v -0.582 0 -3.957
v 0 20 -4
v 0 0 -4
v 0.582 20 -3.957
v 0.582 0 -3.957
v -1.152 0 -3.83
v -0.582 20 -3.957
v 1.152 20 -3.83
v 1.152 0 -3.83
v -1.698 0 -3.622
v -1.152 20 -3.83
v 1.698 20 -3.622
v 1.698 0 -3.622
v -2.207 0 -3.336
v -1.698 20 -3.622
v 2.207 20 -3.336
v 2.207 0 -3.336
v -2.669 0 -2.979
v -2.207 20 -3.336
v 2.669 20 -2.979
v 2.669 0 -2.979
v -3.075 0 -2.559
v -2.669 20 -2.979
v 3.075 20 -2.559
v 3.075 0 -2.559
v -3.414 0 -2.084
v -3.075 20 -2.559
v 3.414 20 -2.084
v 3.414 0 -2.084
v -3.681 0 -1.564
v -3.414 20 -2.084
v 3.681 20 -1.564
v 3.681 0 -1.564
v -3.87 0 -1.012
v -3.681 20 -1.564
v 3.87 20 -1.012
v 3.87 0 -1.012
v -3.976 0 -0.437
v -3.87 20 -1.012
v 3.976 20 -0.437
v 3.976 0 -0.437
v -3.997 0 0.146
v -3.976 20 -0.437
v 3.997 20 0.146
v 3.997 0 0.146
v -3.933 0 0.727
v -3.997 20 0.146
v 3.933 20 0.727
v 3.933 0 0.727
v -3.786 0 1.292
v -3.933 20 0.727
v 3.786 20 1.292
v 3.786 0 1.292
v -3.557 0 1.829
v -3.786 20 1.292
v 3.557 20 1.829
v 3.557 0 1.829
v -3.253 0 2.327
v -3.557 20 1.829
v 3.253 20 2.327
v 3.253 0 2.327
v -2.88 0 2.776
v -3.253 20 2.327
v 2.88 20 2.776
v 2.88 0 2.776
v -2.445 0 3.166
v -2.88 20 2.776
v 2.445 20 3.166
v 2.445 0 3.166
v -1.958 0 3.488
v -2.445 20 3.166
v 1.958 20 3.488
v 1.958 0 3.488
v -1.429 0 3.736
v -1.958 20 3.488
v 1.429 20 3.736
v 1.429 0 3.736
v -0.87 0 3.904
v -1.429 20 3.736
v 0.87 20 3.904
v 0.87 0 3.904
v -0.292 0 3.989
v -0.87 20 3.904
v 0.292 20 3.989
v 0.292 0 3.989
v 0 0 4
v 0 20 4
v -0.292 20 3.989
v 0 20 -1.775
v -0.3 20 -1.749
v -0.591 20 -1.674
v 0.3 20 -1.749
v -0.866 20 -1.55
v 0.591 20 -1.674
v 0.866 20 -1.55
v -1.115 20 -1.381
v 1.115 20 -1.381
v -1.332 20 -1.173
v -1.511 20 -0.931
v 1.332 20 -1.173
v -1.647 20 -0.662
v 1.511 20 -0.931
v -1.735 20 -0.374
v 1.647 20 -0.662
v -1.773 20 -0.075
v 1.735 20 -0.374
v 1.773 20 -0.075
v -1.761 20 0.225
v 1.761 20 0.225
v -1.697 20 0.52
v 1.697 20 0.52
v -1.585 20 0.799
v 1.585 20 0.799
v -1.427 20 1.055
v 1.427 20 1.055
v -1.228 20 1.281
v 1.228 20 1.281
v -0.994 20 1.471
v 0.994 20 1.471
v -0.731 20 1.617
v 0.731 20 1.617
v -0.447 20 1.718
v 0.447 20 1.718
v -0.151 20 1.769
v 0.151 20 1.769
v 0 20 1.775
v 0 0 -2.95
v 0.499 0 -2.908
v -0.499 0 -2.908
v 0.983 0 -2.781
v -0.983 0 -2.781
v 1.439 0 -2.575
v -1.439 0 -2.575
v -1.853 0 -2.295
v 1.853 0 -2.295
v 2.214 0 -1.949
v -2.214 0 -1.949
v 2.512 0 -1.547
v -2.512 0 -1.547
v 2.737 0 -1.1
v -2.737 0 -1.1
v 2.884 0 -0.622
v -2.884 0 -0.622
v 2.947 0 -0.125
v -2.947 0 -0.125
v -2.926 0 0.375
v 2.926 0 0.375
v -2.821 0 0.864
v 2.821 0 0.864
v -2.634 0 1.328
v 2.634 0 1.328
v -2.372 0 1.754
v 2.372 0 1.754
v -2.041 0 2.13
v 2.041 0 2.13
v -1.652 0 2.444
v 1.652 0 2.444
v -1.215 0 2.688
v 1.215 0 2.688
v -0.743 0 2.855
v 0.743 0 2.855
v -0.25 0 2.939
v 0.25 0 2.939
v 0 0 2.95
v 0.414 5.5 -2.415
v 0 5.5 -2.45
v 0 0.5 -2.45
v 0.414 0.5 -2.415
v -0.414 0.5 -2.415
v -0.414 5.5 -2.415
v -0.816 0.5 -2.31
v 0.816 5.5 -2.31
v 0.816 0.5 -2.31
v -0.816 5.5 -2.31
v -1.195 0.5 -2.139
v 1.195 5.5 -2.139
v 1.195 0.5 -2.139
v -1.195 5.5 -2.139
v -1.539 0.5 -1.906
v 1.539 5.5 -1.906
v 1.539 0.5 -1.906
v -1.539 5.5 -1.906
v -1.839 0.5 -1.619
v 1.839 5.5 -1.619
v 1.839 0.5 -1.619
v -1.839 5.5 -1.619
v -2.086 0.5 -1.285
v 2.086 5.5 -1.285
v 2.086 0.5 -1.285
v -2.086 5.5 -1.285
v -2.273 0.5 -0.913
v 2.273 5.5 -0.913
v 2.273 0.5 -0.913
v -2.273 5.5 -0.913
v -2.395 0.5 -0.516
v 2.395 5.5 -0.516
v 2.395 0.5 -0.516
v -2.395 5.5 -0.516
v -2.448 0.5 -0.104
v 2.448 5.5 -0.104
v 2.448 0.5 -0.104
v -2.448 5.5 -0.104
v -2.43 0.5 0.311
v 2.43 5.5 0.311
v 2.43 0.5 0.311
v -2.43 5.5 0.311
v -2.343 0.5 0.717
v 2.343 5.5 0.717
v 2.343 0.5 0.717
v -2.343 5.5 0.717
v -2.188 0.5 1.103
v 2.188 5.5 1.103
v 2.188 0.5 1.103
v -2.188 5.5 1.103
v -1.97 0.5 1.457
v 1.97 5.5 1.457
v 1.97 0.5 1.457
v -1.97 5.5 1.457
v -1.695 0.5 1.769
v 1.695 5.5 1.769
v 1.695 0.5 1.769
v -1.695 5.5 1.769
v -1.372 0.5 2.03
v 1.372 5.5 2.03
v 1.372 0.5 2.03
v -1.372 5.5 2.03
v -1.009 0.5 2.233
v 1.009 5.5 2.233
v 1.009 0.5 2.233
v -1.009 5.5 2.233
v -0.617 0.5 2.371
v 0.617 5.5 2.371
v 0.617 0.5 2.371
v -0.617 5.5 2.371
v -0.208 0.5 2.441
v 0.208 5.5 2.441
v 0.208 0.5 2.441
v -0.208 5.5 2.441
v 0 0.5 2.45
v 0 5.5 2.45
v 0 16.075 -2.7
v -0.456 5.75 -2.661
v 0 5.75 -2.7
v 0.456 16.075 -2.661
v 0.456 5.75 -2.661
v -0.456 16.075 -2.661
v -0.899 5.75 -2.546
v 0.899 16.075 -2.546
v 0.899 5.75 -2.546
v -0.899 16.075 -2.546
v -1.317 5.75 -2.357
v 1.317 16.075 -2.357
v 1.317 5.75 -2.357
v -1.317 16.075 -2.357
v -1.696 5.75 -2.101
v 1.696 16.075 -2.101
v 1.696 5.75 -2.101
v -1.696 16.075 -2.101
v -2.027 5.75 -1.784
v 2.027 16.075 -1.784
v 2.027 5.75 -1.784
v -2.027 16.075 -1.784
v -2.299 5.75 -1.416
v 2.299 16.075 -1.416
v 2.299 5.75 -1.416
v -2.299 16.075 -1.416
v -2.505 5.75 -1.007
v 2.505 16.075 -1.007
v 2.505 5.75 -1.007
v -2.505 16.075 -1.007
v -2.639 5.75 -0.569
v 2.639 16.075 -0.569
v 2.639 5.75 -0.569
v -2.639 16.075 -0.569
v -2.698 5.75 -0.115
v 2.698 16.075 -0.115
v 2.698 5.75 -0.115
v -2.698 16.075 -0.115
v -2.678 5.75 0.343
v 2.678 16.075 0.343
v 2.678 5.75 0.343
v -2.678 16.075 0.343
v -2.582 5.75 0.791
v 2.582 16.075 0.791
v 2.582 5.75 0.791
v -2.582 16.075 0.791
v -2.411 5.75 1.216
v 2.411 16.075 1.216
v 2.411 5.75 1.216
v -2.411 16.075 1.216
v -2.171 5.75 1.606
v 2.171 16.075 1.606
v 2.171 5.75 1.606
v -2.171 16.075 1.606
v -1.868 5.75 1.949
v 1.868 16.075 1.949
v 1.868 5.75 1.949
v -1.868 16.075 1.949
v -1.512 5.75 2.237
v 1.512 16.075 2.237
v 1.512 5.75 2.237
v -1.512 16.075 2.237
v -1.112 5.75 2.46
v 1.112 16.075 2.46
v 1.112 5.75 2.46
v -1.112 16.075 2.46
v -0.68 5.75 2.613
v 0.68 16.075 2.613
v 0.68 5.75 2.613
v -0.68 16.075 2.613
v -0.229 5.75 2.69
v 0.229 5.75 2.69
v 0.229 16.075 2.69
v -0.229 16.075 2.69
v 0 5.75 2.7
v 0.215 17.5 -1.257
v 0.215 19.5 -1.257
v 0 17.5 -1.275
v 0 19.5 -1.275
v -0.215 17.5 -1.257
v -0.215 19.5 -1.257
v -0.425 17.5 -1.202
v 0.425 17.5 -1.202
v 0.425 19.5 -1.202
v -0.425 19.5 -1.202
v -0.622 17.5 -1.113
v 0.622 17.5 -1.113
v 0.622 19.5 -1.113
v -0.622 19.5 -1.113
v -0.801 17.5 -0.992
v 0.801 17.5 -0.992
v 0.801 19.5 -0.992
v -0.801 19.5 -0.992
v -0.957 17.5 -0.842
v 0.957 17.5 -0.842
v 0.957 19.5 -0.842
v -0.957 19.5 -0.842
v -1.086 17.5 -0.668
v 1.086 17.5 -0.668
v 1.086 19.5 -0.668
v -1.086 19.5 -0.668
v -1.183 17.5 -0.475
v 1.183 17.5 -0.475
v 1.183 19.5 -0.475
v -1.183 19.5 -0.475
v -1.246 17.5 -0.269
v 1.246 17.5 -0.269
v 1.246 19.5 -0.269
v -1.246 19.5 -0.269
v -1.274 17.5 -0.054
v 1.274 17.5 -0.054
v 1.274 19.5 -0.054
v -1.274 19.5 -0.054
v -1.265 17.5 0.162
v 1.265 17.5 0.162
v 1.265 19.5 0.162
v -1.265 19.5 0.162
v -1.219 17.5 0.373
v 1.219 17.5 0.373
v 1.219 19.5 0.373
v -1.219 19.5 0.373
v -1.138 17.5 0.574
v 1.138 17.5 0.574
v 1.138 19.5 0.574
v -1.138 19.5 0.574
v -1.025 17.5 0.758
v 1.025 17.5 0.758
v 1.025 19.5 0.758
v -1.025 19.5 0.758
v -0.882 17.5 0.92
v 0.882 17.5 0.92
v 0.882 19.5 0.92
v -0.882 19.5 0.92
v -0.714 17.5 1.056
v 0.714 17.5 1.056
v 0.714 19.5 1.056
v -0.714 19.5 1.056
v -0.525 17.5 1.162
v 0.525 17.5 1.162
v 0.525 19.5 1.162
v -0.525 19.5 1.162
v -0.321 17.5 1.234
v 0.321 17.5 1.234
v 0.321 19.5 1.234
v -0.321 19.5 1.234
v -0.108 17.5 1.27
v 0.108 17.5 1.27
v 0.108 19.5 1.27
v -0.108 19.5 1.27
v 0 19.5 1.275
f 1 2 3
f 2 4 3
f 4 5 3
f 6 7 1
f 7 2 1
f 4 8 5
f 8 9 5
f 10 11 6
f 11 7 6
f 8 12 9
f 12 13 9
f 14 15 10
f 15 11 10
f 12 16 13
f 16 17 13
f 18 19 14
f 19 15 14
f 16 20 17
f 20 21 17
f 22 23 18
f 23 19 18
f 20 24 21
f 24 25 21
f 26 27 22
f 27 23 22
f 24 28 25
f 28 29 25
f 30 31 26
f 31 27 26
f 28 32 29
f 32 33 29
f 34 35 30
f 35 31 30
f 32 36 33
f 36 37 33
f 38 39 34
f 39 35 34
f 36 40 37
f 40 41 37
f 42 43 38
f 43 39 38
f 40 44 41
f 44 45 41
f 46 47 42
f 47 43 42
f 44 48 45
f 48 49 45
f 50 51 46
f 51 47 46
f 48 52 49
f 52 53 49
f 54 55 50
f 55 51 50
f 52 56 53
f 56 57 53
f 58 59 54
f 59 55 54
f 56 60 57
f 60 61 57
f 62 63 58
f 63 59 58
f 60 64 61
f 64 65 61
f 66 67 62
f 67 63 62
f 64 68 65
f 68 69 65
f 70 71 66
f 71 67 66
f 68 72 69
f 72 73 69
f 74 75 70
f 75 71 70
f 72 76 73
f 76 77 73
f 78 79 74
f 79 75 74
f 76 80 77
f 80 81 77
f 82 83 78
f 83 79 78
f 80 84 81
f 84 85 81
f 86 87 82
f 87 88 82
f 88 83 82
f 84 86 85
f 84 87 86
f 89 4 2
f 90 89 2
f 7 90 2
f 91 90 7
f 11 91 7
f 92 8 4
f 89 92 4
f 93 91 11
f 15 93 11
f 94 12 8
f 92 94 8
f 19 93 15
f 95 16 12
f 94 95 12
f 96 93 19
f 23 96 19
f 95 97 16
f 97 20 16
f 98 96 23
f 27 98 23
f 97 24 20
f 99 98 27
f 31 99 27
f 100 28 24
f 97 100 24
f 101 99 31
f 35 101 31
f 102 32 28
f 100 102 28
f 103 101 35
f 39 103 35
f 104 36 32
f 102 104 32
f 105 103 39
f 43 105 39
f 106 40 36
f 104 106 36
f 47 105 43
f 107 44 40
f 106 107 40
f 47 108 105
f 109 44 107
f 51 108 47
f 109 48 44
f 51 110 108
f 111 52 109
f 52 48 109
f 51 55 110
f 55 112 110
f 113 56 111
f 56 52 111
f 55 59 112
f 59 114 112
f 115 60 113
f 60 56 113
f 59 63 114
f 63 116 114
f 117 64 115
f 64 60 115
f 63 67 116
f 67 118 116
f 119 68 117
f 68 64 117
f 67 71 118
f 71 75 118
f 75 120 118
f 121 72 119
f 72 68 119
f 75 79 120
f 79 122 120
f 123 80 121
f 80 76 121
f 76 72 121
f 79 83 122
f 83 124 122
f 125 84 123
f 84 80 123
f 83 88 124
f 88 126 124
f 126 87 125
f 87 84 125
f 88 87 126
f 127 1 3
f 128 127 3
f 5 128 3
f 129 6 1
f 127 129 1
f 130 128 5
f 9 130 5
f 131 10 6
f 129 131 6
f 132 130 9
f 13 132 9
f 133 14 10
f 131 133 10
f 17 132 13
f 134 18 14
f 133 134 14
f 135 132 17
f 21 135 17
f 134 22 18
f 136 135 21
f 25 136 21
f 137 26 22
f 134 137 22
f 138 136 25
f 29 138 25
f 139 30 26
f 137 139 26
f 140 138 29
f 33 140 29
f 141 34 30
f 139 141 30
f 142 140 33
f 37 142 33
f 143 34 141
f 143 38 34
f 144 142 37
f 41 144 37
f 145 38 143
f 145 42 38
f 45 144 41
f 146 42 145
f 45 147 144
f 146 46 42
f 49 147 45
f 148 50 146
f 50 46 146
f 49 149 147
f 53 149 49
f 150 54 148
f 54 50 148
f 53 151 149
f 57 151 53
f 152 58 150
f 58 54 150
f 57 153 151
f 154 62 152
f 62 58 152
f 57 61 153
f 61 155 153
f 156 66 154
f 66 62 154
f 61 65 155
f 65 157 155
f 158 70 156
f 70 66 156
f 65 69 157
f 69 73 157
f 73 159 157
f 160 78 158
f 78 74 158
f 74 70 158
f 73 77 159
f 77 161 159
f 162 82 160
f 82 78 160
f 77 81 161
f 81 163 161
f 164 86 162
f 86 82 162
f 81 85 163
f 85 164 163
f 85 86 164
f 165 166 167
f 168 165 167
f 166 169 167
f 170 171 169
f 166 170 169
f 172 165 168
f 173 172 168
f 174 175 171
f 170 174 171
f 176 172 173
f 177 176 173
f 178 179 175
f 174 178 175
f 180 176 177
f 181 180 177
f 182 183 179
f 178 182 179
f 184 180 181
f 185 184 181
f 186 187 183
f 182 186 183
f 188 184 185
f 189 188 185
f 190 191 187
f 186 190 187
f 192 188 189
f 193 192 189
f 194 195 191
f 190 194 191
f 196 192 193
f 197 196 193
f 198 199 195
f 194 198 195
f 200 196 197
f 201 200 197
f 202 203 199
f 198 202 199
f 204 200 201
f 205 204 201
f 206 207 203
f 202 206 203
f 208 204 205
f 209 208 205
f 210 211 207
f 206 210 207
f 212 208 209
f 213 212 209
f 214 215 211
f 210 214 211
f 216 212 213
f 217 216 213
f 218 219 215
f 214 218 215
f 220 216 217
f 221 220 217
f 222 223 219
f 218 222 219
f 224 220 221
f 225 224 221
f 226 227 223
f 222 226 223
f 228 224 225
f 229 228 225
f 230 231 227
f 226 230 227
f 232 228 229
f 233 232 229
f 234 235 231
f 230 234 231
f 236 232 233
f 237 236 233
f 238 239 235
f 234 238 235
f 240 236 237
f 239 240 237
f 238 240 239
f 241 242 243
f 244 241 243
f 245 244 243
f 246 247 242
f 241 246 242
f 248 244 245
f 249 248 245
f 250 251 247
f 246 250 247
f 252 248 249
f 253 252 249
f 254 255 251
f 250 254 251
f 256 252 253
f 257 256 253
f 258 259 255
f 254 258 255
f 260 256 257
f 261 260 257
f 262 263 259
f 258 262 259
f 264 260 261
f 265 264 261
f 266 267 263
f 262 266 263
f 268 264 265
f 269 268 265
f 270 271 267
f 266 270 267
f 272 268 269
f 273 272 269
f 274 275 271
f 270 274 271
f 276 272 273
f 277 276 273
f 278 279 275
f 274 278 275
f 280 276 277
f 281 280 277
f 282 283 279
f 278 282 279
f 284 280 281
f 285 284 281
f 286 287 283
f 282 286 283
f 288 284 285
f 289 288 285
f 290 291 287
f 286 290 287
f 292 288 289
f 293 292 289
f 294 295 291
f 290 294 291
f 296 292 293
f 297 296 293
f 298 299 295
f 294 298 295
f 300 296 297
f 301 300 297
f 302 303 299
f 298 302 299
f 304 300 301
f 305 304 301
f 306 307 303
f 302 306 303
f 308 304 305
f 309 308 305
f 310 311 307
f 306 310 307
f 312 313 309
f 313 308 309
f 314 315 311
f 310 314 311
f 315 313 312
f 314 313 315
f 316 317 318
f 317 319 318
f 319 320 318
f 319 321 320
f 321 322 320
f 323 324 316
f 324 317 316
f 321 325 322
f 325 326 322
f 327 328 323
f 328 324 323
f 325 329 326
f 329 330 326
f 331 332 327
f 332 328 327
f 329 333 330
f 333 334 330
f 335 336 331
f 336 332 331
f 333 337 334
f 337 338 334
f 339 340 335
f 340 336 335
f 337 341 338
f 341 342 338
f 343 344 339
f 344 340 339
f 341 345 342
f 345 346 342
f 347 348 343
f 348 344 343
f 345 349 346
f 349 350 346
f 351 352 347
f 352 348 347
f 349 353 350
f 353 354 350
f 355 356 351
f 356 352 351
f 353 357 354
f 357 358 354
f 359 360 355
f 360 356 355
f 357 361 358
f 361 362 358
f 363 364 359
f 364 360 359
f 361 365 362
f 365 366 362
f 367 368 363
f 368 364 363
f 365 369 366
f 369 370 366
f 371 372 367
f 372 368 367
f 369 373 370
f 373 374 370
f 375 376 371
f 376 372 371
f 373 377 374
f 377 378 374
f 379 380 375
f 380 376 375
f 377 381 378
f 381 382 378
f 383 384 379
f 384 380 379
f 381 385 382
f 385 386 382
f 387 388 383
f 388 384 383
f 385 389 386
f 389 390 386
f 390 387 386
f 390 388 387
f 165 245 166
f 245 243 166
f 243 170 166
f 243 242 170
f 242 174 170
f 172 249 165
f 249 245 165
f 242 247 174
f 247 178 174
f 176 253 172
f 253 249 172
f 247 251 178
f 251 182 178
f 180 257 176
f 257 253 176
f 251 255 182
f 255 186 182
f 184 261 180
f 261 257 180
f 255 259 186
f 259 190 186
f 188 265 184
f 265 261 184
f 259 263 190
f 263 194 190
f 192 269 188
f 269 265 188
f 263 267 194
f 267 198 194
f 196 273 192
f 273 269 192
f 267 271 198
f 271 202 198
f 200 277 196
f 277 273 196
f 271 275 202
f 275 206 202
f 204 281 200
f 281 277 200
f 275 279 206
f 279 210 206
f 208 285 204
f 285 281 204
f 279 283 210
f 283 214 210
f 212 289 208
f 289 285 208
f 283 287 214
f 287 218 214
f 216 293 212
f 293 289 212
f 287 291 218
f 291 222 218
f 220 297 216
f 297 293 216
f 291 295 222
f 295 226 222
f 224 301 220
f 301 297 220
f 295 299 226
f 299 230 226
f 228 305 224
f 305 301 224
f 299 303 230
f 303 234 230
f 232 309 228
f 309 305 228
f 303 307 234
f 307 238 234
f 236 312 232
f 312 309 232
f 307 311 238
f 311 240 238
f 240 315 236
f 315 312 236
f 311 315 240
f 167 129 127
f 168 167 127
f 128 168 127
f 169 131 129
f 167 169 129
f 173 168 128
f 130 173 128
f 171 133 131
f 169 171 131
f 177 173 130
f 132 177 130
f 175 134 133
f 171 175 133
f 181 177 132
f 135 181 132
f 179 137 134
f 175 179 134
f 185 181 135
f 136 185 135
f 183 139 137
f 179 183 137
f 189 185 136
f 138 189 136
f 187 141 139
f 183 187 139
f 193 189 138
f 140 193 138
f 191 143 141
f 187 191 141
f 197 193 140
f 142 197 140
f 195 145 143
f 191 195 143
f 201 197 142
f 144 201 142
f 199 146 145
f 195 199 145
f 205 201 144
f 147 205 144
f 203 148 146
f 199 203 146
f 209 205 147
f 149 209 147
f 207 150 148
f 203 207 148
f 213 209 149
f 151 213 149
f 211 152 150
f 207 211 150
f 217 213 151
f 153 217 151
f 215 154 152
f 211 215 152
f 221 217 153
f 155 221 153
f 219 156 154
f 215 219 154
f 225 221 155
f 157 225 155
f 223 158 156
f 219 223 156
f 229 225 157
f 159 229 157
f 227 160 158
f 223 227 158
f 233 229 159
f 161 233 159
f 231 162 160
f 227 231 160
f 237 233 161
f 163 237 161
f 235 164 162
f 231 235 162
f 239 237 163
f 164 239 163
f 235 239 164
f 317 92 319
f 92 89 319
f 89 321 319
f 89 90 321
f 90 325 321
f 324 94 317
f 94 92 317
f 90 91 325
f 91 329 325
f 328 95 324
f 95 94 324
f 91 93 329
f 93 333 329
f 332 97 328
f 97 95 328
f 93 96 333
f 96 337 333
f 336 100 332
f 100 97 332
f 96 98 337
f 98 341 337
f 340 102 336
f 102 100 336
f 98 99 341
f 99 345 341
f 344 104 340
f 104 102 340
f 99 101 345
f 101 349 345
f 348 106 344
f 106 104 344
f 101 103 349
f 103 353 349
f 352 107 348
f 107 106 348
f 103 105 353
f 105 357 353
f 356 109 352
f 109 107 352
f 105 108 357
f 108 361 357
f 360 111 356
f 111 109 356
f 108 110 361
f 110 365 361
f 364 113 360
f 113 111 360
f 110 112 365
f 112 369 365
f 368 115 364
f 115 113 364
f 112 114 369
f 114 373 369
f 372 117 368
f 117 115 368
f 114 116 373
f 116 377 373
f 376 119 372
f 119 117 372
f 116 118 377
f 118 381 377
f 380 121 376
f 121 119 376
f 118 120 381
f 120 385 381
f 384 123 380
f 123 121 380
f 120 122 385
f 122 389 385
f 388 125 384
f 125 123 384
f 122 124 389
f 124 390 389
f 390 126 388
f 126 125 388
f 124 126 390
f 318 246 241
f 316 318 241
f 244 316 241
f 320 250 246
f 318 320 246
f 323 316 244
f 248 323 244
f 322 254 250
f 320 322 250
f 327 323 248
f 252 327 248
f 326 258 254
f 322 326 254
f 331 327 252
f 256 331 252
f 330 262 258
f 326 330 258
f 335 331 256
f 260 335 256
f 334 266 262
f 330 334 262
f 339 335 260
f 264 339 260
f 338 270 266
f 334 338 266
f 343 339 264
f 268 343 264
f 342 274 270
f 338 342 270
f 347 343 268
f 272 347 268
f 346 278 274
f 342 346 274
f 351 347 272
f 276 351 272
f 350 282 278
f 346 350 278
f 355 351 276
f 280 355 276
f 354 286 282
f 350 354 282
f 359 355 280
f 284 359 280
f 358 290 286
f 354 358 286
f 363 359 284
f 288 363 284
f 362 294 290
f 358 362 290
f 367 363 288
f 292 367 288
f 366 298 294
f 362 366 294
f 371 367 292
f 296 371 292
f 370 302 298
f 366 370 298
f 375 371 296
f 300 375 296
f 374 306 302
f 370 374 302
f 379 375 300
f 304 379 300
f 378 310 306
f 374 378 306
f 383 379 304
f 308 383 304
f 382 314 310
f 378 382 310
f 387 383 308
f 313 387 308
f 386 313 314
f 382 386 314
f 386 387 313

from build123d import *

# Parameters (mm, degrees)
SKETCH1_R           = 4
BOSS_EXTRUDE1_DEPTH = 20
SKETCH2_R           = 2.45
CUT_EXTRUDE1_DEPTH  = 6
SKETCH3_R           = 2.7
CUT_EXTRUDE2_DEPTH  = 10
SKETCH4_R           = 1.275
CUT_EXTRUDE3_DEPTH  = 6
CHAMFER1_SIZE       = 0.5
CHAMFER2_SIZE       = 1.5


with BuildPart() as part:
    # Sketch1 → Boss-Extrude1 (new body)
    with BuildSketch(Plane(origin=(0, 0, 0), x_dir=(1, 0, 0), z_dir=(0, 1, 0))):
        with Locations(Location((0, 0, 0), (0, 0, 270))):
            Circle(SKETCH1_R)
    extrude(amount=BOSS_EXTRUDE1_DEPTH)

    # Sketch2 → Cut-Extrude1 (cut)
    with BuildSketch(Plane.XZ):
        with Locations(Location((0, 0, 0), (0, 0, 270))):
            Circle(SKETCH2_R)
    extrude(amount=-CUT_EXTRUDE1_DEPTH, mode=Mode.SUBTRACT)

    # Sketch3 → Cut-Extrude2 (cut)
    with BuildSketch(Plane.XZ.offset(-6)):
        with Locations(Location((0, 0, 0), (0, 0, 270))):
            Circle(SKETCH3_R)
    extrude(amount=-CUT_EXTRUDE2_DEPTH, mode=Mode.SUBTRACT)

    # Sketch4 → Cut-Extrude3 (cut)
    with BuildSketch(Plane.XZ.offset(-16)):
        with Locations(Location((0, 0, 0), (0, 0, 270))):
            Circle(SKETCH4_R)
    extrude(amount=-CUT_EXTRUDE3_DEPTH, mode=Mode.SUBTRACT)

    # Chamfer1
    # the kernel refuses this chamfer: 0.5 mm, written as the material it takes off along each edge
    with BuildSketch(Plane(origin=(0, 0, 0), x_dir=(0, 0, -1), z_dir=(-1, 0, 0))) as chamfer1_piece_1:
        Polygon((2.45 + CHAMFER1_SIZE, 0), (2.45, -CHAMFER1_SIZE), (2.45, 0), align=None)
    revolve(axis=Axis((0, 0, 0), (0, -1, 0)), mode=Mode.SUBTRACT)
    with BuildSketch(Plane(origin=(0, 6, 0), x_dir=(0, 0, -1), z_dir=(-1, 0, 0))) as chamfer1_piece_2_section:
        Polygon((2.45, CHAMFER1_SIZE), (2.45 + CHAMFER1_SIZE, 0), (2.45, 0), align=None)
    chamfer1_piece_2 = revolve(axis=Axis((0, 6, 0), (0, -1, 0)), mode=Mode.PRIVATE)
    chamfer1_piece_2 = chamfer1_piece_2 & Plane(origin=(0, 5.626269224, 0), x_dir=(0, 0, -1), z_dir=(0, -1, 0)) * Cylinder(2.7, 12, mode=Mode.PRIVATE)
    add(chamfer1_piece_2, mode=Mode.SUBTRACT)
    with BuildSketch(Plane(origin=(0, 20, 0), x_dir=(0, 0, -1), z_dir=(-1, 0, 0))) as chamfer1_piece_3:
        Polygon((1.275 + CHAMFER1_SIZE, 0), (1.275, CHAMFER1_SIZE), (1.275, 0), align=None)
    revolve(axis=Axis((0, 20, 0), (0, -1, 0)), mode=Mode.SUBTRACT)

    # Chamfer2
    # the kernel refuses this chamfer: 1.5 mm, written as the material it takes off along each edge
    with BuildSketch(Plane(origin=(0, 16, 0), x_dir=(0, 0, -1), z_dir=(-1, 0, 0))) as chamfer2_piece_1_section:
        Polygon((1.275, -CHAMFER2_SIZE), (1.275 + CHAMFER2_SIZE, 0), (1.275, 0), align=None)
    chamfer2_piece_1 = revolve(axis=Axis((0, 16, 0), (0, -1, 0)), mode=Mode.PRIVATE)
    chamfer2_piece_1 = chamfer2_piece_1 & Plane(origin=(0, 16.79183668, 0), x_dir=(0, 0, -1), z_dir=(0, -1, 0)) * Cylinder(2.7, 12, mode=Mode.PRIVATE)
    add(chamfer2_piece_1, mode=Mode.SUBTRACT)


solid = part.part
